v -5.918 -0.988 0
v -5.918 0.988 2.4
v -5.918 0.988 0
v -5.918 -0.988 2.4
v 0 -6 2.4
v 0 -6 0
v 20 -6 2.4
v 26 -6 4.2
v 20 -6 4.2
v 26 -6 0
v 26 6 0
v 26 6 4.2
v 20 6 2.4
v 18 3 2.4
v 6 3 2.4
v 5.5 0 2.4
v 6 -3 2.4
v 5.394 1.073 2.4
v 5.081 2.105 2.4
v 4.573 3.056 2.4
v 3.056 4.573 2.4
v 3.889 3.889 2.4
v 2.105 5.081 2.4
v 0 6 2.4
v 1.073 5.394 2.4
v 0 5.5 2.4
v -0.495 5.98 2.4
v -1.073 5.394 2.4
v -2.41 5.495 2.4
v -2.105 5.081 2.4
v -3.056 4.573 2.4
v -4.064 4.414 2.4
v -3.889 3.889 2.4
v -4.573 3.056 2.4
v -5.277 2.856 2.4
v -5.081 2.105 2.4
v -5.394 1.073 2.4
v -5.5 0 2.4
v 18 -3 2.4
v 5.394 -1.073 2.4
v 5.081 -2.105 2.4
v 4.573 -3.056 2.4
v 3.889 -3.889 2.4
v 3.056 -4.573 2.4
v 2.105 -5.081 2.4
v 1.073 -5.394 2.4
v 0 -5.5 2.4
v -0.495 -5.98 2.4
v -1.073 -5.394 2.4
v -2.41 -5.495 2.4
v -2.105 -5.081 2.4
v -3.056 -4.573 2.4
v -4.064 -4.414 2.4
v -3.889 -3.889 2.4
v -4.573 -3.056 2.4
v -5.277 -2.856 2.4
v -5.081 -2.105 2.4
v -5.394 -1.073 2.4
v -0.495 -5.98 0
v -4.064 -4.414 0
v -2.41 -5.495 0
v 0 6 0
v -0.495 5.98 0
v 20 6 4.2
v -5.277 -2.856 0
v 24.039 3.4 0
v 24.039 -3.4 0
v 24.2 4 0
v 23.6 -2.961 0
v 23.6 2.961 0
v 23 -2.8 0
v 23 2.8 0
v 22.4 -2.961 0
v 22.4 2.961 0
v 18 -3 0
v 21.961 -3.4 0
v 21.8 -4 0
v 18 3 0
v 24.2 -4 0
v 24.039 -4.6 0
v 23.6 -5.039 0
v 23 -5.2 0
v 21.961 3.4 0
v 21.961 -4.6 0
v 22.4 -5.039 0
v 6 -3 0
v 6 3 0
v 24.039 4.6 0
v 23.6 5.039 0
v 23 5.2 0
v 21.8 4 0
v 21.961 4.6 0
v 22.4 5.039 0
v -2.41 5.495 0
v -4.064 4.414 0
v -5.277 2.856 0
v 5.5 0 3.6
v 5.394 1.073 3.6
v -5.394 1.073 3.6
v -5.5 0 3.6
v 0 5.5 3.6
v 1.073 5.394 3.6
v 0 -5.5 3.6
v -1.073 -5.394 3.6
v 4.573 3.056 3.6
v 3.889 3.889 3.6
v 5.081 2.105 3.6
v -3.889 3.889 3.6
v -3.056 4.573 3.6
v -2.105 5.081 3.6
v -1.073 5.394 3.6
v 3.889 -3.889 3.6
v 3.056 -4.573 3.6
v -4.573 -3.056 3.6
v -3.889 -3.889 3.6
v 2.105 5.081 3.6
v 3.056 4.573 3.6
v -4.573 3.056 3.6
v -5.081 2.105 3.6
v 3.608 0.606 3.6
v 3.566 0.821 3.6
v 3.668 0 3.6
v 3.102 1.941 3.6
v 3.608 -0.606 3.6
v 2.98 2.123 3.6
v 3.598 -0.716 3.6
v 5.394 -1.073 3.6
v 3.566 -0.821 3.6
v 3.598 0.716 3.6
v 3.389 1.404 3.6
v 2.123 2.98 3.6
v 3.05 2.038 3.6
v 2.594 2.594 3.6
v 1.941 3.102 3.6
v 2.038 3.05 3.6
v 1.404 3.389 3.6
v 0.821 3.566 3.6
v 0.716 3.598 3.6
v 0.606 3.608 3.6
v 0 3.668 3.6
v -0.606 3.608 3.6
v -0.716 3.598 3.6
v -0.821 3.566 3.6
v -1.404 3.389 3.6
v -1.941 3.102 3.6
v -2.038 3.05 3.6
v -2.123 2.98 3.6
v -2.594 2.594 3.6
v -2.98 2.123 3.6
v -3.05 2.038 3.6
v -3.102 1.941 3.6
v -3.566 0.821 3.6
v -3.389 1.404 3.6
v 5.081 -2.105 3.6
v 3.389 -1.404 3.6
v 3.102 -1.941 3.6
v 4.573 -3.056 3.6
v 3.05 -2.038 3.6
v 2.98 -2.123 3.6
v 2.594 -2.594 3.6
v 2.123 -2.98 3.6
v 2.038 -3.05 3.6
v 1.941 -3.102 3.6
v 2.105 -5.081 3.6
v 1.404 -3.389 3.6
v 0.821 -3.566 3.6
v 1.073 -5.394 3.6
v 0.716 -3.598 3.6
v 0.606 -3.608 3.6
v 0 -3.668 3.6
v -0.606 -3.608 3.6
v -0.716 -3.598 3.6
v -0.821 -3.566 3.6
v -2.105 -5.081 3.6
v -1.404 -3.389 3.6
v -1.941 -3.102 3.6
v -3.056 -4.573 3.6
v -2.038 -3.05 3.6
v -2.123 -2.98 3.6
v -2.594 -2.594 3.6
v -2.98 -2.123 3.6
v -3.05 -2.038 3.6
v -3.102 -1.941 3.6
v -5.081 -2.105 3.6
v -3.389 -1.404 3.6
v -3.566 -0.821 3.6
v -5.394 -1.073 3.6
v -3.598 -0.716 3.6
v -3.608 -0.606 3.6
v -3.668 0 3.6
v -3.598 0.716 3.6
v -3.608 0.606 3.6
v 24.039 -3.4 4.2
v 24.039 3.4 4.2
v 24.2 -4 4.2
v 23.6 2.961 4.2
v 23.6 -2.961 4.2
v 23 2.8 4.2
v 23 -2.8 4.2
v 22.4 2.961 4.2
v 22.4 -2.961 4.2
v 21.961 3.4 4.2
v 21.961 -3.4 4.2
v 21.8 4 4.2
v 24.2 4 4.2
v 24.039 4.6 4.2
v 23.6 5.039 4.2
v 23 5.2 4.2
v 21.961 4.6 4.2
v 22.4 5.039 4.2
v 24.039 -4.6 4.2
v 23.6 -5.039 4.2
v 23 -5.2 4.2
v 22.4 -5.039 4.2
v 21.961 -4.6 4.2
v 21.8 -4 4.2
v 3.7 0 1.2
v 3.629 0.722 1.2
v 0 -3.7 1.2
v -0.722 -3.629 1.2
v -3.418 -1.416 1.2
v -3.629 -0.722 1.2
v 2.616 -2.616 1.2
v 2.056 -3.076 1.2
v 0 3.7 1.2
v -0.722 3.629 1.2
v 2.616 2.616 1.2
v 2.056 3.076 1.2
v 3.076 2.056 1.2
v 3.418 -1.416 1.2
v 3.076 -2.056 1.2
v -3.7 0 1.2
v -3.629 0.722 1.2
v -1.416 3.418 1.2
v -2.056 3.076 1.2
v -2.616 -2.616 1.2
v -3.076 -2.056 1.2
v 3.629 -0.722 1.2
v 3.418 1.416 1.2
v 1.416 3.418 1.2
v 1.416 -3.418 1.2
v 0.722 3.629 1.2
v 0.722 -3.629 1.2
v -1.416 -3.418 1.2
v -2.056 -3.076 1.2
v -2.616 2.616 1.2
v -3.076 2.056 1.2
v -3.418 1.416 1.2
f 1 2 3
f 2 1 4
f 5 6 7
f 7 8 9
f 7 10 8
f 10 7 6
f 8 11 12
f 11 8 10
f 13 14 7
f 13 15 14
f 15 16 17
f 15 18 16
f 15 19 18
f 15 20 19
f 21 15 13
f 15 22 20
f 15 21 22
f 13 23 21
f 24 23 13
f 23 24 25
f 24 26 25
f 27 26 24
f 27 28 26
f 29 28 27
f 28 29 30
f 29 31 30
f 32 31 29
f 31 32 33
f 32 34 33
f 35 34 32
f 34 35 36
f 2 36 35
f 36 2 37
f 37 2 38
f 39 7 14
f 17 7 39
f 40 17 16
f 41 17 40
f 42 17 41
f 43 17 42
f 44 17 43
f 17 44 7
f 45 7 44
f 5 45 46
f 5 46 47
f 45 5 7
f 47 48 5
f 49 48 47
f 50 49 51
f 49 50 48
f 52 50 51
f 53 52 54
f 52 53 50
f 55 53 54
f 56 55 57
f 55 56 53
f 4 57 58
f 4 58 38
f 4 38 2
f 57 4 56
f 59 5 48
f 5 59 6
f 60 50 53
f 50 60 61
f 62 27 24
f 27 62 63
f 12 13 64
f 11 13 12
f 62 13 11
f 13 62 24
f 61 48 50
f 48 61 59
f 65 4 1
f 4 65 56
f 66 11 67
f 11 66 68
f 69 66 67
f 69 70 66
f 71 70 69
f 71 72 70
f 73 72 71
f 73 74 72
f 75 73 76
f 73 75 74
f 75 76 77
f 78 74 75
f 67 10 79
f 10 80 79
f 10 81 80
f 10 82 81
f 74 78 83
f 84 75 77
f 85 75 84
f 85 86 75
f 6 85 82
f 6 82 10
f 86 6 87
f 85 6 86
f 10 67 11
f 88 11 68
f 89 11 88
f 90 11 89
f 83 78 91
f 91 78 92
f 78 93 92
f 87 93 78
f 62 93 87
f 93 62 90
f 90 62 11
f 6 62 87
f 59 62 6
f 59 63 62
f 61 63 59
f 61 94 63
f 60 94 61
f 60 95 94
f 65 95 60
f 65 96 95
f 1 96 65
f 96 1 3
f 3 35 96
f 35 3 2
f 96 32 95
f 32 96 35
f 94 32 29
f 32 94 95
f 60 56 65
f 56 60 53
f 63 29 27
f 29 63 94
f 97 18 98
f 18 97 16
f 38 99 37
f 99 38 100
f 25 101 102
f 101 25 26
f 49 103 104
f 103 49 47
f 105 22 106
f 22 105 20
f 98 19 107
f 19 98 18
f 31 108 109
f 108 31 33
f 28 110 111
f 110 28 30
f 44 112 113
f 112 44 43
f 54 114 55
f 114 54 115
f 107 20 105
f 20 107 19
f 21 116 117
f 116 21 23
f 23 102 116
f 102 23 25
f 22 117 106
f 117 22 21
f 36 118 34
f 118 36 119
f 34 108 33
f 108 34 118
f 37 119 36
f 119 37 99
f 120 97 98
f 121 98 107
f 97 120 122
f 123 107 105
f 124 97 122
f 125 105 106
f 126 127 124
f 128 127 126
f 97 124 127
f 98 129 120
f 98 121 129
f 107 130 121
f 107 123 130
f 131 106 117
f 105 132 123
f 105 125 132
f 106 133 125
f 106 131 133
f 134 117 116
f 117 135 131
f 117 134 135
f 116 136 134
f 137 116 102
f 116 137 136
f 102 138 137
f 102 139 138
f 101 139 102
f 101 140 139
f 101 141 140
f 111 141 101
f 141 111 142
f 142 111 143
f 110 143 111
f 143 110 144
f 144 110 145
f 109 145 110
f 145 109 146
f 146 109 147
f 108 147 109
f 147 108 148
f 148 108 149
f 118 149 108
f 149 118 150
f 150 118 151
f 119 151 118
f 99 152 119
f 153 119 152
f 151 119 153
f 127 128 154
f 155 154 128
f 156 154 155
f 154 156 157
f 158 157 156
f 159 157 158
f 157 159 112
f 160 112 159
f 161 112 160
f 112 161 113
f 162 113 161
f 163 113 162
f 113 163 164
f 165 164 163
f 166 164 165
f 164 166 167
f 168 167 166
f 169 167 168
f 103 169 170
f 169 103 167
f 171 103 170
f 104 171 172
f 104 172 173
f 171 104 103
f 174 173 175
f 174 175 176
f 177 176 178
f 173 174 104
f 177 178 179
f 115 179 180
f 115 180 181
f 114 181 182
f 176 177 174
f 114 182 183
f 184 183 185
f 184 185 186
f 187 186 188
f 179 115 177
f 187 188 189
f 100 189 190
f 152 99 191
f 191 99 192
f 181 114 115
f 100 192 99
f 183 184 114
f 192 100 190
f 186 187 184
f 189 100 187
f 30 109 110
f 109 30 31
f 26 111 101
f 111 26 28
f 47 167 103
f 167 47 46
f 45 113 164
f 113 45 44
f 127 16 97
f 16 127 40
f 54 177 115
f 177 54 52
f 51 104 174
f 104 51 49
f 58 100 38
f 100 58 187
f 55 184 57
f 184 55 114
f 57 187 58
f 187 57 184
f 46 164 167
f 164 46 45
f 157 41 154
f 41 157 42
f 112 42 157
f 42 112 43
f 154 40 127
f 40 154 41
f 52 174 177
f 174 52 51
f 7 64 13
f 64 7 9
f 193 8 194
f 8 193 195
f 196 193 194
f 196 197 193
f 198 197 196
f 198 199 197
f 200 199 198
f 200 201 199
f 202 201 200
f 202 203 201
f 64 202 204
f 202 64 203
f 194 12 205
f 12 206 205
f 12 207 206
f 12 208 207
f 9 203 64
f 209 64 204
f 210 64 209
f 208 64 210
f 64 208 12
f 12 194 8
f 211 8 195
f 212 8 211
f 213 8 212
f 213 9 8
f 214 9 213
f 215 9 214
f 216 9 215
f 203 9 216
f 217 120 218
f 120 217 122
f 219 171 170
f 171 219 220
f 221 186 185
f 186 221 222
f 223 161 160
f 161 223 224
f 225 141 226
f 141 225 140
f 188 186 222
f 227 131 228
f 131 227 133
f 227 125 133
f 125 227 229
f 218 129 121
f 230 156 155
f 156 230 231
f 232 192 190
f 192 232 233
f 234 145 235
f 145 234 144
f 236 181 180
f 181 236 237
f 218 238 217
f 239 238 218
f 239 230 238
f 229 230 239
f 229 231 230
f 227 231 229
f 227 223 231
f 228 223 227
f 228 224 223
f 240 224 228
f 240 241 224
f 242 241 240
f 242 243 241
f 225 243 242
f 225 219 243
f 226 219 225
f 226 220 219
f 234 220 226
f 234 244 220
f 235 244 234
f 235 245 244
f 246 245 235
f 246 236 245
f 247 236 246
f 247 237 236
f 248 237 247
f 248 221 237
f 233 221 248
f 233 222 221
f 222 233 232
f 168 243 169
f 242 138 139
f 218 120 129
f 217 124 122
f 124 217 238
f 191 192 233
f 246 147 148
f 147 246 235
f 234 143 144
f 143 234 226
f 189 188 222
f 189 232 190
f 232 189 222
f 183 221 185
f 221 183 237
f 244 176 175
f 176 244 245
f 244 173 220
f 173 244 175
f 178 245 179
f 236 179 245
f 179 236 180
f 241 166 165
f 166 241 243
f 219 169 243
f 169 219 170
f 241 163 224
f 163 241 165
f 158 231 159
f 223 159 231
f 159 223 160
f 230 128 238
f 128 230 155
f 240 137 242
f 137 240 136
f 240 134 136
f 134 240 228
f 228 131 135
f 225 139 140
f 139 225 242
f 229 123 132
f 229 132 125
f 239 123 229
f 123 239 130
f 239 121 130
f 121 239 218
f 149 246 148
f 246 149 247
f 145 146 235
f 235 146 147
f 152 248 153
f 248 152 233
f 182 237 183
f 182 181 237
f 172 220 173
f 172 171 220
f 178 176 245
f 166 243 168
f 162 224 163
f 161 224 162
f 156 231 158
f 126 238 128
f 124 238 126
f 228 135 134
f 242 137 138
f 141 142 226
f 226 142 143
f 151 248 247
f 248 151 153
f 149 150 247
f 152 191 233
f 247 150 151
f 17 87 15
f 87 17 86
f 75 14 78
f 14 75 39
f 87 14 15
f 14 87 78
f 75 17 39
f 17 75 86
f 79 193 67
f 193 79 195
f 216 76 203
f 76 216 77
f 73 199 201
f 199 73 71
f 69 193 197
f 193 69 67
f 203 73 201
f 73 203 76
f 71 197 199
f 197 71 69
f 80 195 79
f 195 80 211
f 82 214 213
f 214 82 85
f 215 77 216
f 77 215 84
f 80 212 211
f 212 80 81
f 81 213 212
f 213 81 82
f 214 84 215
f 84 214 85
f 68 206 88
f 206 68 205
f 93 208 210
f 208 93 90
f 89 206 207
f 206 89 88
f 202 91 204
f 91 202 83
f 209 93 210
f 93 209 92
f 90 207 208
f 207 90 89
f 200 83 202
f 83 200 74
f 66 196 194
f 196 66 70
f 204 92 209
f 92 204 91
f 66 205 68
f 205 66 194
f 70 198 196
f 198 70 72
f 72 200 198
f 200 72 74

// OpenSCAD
mount_y = 12;
mount_x = 32-mount_y/2;

bearing_r = 3.7;
bearing_h = 1.2;

thick   = 2.4;

difference() {
    union() {
        hull() {
            cylinder(r=mount_y/2, h=thick);
            translate([0,-mount_y/2,0])
            cube([mount_x,mount_y,thick]);
        }
        translate([0,0,bearing_h])
        cylinder(r=bearing_r+1.8, h=2.4, $fn=32);
		translate([mount_x-3*2, -mount_y/2,thick])
		cube([6,mount_y,1.8]);
    }
    translate([0,0,bearing_h])
    cylinder(r1=bearing_r,r2=bearing_r-0.2, h=15, $fn=32);
    
    translate([12,0,0])
    cube([12,6,12], center= true);
    
    translate([mount_x-3,-4,-.1])
    cylinder(r=1.2, h=15, $fn=12);
    translate([mount_x-3,4,-.1])
    cylinder(r=1.2, h=15, $fn=12);
//    
//    translate([mount_x-3.1*2, -mount_y/2-.1,2])
//    cube([6+.6,mount_y+.2,8]);
}
